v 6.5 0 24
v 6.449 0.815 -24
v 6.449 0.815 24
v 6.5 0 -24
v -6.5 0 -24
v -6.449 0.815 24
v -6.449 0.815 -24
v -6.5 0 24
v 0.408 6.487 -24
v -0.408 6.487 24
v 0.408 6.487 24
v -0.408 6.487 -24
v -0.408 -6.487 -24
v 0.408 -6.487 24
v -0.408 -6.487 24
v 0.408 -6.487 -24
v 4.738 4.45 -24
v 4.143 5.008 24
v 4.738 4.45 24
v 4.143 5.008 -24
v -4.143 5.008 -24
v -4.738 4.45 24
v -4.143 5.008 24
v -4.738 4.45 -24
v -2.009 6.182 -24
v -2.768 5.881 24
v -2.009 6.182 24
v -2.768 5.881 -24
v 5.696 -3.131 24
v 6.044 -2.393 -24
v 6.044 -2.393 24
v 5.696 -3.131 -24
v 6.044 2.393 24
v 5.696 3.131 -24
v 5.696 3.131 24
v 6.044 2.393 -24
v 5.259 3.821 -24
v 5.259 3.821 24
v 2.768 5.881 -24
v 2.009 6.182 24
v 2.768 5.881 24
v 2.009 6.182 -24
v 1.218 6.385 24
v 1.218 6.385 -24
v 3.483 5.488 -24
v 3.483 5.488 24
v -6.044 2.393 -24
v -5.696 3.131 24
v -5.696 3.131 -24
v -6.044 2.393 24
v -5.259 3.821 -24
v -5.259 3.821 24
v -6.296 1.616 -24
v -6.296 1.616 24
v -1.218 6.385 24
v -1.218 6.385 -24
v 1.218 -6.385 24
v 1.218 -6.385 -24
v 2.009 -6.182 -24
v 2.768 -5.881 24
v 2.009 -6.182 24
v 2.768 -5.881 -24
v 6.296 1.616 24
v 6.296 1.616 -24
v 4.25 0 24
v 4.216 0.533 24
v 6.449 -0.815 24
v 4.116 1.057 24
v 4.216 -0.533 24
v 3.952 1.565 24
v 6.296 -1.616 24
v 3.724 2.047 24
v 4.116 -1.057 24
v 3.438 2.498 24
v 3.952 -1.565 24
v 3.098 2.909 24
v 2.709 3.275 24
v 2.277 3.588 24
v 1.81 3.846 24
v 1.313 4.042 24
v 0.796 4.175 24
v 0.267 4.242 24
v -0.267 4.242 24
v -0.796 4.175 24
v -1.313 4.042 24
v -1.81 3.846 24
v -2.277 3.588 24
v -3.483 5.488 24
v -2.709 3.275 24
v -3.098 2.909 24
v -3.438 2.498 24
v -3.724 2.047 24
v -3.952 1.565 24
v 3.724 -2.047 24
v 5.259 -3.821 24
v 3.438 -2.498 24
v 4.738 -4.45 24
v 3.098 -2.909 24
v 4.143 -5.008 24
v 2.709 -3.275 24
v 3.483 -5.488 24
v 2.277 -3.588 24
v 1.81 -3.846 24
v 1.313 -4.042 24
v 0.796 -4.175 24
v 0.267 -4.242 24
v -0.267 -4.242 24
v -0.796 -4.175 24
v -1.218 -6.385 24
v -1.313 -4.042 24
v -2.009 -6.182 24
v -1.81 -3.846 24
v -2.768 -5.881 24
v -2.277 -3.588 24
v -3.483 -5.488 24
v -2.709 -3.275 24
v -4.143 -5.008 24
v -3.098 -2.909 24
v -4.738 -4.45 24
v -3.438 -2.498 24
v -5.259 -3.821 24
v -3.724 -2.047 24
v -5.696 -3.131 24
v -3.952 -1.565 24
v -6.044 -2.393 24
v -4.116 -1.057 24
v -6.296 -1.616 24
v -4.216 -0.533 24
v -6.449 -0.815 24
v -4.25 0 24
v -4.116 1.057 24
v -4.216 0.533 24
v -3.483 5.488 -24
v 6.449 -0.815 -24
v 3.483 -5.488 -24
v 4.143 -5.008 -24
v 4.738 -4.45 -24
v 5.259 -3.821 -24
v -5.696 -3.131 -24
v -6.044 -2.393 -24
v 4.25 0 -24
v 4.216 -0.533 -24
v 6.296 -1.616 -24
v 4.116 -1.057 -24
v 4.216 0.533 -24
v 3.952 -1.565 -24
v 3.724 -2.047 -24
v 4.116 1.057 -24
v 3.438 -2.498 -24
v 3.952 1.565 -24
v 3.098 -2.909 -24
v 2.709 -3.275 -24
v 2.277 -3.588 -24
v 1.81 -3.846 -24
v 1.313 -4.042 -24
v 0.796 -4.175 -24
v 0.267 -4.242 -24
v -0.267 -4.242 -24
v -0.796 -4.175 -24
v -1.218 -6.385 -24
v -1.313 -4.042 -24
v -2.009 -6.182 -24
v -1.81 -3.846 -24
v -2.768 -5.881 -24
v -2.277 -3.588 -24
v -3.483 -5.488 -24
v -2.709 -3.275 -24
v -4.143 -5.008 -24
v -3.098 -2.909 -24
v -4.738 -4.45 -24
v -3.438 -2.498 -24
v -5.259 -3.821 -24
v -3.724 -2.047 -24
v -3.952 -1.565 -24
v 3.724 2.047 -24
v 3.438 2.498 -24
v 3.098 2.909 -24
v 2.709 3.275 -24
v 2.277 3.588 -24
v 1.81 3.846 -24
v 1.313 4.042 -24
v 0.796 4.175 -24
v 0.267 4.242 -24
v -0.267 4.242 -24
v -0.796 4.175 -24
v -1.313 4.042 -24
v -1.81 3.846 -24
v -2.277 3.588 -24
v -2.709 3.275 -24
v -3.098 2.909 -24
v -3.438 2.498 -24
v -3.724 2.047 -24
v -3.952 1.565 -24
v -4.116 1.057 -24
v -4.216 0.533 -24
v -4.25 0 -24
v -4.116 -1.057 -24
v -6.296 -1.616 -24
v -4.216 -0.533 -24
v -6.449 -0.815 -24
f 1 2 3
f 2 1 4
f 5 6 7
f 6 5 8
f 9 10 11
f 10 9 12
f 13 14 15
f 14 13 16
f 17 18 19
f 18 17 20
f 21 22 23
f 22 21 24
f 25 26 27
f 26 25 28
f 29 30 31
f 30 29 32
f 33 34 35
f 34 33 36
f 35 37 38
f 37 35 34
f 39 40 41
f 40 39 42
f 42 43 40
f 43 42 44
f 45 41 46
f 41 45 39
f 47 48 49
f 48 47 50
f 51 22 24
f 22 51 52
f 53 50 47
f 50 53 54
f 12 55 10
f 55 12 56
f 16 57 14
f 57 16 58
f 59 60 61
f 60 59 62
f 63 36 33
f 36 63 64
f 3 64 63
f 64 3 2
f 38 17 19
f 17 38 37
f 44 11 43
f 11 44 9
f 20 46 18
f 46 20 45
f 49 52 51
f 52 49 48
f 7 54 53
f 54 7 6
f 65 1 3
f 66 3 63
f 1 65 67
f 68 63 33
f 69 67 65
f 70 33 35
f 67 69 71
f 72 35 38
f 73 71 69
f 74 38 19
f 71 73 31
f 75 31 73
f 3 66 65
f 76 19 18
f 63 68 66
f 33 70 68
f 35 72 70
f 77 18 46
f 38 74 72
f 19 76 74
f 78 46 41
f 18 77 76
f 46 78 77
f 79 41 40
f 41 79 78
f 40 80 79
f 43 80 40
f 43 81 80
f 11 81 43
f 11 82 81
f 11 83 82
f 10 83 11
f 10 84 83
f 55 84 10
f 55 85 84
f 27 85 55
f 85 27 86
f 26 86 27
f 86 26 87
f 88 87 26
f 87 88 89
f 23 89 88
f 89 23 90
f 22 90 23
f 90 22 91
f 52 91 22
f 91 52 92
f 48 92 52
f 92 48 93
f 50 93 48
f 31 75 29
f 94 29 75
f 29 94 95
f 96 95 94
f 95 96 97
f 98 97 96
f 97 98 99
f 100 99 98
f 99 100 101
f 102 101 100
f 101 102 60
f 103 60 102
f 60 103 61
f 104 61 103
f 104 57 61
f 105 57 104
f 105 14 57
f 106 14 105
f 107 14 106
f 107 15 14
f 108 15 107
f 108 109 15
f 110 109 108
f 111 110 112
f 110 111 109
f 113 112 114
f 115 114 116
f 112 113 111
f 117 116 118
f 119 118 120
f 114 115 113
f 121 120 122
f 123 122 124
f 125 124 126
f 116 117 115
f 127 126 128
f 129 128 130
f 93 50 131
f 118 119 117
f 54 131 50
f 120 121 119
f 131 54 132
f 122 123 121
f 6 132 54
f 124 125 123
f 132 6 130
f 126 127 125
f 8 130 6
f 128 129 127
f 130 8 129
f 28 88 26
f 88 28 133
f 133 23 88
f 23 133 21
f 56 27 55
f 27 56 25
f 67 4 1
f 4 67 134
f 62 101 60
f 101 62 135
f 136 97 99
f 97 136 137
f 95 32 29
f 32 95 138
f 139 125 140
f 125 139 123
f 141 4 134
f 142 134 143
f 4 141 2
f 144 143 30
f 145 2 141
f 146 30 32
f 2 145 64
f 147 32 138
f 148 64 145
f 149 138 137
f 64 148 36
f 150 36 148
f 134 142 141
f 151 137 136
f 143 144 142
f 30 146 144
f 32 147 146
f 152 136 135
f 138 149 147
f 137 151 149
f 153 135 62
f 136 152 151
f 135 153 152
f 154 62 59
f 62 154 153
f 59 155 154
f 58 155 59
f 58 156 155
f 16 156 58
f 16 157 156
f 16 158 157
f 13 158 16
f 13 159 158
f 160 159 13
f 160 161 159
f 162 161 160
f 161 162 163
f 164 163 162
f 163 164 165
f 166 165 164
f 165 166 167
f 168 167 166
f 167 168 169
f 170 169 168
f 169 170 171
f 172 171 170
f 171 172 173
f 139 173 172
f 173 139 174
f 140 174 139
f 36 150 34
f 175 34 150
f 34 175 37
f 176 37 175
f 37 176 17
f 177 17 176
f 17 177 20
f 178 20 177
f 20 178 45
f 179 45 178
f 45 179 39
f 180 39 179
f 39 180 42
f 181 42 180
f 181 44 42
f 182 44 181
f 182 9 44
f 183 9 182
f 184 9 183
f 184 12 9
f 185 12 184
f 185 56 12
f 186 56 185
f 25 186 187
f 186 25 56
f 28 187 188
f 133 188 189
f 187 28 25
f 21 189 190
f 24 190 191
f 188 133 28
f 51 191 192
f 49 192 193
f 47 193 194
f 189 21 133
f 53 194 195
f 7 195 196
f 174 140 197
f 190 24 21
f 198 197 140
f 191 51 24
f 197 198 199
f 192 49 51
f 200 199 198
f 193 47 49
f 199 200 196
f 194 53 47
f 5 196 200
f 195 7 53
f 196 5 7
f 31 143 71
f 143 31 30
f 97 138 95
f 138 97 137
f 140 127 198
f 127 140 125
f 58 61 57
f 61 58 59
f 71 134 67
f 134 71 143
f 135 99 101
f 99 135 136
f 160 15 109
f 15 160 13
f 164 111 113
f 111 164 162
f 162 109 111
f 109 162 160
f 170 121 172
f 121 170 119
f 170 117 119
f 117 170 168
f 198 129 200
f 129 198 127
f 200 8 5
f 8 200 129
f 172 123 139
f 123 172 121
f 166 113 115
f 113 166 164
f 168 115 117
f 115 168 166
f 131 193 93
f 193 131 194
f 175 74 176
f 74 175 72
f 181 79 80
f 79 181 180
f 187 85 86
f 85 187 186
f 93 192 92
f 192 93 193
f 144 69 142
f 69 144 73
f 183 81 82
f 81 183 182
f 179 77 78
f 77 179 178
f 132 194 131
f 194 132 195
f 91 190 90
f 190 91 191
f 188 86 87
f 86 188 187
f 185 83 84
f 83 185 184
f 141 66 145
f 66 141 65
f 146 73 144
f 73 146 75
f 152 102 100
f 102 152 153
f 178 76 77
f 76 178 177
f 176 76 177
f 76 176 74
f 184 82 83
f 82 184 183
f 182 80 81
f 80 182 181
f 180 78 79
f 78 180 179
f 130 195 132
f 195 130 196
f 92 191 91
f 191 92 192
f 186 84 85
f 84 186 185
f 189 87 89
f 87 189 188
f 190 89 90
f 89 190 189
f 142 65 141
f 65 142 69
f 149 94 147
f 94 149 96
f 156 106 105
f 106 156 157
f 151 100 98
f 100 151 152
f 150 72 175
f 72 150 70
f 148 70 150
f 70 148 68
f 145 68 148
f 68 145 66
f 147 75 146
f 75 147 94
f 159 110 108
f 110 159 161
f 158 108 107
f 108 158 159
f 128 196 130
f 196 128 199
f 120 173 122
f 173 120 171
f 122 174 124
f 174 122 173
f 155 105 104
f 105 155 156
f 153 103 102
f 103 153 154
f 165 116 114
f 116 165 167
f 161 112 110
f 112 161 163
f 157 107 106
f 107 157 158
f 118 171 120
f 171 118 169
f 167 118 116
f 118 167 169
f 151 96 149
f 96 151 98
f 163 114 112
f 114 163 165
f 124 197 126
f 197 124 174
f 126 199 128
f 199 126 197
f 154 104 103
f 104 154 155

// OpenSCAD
$fn = 50;


difference() {
	union() {
		translate(v = [0, 0, -24.0000000000]) {
			cylinder(h = 48, r = 6.5000000000);
		}
	}
	union() {
		translate(v = [0, 0, -100.0000000000]) {
			cylinder(h = 200, r = 4.2500000000);
		}
	}
}
